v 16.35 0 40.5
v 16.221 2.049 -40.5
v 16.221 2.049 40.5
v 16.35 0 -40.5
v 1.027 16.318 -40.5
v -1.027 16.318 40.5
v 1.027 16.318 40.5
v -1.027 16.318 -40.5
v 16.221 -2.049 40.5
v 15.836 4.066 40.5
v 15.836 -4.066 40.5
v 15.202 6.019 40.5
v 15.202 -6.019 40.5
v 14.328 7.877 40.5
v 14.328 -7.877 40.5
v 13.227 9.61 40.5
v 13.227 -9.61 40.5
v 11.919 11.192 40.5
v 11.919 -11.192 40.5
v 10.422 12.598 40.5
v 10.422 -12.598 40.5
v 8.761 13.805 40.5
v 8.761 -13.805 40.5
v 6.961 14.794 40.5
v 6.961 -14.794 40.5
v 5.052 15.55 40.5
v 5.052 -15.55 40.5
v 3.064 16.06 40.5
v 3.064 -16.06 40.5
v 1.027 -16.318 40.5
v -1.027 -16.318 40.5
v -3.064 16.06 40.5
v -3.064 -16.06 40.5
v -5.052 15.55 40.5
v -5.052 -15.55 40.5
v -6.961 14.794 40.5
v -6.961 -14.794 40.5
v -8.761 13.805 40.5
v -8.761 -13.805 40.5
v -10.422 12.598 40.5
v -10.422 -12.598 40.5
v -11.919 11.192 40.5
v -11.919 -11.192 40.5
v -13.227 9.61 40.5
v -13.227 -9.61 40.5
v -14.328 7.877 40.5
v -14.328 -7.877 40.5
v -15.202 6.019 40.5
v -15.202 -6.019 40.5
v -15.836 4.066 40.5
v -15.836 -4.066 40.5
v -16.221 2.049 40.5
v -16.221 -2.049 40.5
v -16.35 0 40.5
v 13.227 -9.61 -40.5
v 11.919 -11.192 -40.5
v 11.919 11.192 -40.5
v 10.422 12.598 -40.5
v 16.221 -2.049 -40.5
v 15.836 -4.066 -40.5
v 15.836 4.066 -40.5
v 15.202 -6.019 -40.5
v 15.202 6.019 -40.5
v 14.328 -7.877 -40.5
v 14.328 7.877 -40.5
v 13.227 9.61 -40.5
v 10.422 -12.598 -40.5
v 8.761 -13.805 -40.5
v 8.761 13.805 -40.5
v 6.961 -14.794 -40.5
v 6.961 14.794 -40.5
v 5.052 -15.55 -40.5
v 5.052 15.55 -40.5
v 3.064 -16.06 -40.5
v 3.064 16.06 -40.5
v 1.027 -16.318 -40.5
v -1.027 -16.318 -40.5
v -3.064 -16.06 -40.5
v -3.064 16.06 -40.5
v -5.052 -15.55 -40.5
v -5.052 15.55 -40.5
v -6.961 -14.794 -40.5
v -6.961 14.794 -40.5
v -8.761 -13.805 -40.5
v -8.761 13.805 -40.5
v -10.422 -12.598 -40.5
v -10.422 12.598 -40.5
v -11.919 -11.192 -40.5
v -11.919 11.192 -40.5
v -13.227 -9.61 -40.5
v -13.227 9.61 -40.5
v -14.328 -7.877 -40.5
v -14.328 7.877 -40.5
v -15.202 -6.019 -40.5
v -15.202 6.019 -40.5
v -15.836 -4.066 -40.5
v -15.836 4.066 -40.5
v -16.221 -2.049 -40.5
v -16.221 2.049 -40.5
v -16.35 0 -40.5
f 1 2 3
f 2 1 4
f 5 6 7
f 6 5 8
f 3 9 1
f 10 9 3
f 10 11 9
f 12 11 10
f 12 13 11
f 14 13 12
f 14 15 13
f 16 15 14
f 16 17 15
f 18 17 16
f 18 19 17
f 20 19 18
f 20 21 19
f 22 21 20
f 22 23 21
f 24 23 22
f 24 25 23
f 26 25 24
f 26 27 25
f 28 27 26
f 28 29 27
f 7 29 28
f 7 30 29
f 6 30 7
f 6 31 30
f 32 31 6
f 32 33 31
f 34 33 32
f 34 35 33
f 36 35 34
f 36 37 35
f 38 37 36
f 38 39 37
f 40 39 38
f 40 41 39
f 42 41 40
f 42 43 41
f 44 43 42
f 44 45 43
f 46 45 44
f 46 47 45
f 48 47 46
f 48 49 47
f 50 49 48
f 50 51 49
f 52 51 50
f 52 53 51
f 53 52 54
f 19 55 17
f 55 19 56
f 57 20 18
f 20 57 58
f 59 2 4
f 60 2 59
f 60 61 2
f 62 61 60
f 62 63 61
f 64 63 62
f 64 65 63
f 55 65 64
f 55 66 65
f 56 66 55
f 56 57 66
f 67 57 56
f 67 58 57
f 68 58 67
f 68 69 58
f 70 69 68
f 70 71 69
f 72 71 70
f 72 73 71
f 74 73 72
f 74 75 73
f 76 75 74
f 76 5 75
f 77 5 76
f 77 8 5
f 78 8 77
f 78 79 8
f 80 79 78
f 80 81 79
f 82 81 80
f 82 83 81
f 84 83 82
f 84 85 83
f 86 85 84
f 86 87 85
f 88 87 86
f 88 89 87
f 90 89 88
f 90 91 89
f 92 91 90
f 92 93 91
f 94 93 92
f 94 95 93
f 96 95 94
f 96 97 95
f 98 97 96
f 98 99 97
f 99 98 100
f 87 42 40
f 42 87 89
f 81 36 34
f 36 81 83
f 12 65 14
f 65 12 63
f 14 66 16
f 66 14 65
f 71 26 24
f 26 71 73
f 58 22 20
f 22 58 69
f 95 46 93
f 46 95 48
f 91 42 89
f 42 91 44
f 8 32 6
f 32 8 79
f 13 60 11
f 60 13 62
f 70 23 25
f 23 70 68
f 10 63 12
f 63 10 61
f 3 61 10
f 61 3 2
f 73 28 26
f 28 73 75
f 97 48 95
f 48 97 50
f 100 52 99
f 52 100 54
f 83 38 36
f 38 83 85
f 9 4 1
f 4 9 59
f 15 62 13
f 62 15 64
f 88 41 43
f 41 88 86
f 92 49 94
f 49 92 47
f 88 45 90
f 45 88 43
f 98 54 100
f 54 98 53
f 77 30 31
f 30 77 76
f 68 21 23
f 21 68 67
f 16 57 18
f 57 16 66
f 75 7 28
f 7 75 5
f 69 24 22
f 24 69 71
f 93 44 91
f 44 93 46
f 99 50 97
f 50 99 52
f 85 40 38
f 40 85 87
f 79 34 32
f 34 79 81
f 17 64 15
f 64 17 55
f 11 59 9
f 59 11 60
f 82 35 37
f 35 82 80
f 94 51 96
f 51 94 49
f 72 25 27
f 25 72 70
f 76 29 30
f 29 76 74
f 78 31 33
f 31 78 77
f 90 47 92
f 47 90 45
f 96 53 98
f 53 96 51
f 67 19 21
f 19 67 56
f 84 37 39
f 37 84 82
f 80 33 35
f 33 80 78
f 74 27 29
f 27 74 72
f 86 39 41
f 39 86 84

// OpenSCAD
$fn = 50;


difference() {
	union() {
		translate(v = [0, 0, -40.5000000000]) {
			cylinder(h = 81, r = 16.3500000000);
		}
	}
	union() {
		translate(v = [0, 0, -100.0000000000]) {
			cylinder(h = 200, r = 0);
		}
	}
}
